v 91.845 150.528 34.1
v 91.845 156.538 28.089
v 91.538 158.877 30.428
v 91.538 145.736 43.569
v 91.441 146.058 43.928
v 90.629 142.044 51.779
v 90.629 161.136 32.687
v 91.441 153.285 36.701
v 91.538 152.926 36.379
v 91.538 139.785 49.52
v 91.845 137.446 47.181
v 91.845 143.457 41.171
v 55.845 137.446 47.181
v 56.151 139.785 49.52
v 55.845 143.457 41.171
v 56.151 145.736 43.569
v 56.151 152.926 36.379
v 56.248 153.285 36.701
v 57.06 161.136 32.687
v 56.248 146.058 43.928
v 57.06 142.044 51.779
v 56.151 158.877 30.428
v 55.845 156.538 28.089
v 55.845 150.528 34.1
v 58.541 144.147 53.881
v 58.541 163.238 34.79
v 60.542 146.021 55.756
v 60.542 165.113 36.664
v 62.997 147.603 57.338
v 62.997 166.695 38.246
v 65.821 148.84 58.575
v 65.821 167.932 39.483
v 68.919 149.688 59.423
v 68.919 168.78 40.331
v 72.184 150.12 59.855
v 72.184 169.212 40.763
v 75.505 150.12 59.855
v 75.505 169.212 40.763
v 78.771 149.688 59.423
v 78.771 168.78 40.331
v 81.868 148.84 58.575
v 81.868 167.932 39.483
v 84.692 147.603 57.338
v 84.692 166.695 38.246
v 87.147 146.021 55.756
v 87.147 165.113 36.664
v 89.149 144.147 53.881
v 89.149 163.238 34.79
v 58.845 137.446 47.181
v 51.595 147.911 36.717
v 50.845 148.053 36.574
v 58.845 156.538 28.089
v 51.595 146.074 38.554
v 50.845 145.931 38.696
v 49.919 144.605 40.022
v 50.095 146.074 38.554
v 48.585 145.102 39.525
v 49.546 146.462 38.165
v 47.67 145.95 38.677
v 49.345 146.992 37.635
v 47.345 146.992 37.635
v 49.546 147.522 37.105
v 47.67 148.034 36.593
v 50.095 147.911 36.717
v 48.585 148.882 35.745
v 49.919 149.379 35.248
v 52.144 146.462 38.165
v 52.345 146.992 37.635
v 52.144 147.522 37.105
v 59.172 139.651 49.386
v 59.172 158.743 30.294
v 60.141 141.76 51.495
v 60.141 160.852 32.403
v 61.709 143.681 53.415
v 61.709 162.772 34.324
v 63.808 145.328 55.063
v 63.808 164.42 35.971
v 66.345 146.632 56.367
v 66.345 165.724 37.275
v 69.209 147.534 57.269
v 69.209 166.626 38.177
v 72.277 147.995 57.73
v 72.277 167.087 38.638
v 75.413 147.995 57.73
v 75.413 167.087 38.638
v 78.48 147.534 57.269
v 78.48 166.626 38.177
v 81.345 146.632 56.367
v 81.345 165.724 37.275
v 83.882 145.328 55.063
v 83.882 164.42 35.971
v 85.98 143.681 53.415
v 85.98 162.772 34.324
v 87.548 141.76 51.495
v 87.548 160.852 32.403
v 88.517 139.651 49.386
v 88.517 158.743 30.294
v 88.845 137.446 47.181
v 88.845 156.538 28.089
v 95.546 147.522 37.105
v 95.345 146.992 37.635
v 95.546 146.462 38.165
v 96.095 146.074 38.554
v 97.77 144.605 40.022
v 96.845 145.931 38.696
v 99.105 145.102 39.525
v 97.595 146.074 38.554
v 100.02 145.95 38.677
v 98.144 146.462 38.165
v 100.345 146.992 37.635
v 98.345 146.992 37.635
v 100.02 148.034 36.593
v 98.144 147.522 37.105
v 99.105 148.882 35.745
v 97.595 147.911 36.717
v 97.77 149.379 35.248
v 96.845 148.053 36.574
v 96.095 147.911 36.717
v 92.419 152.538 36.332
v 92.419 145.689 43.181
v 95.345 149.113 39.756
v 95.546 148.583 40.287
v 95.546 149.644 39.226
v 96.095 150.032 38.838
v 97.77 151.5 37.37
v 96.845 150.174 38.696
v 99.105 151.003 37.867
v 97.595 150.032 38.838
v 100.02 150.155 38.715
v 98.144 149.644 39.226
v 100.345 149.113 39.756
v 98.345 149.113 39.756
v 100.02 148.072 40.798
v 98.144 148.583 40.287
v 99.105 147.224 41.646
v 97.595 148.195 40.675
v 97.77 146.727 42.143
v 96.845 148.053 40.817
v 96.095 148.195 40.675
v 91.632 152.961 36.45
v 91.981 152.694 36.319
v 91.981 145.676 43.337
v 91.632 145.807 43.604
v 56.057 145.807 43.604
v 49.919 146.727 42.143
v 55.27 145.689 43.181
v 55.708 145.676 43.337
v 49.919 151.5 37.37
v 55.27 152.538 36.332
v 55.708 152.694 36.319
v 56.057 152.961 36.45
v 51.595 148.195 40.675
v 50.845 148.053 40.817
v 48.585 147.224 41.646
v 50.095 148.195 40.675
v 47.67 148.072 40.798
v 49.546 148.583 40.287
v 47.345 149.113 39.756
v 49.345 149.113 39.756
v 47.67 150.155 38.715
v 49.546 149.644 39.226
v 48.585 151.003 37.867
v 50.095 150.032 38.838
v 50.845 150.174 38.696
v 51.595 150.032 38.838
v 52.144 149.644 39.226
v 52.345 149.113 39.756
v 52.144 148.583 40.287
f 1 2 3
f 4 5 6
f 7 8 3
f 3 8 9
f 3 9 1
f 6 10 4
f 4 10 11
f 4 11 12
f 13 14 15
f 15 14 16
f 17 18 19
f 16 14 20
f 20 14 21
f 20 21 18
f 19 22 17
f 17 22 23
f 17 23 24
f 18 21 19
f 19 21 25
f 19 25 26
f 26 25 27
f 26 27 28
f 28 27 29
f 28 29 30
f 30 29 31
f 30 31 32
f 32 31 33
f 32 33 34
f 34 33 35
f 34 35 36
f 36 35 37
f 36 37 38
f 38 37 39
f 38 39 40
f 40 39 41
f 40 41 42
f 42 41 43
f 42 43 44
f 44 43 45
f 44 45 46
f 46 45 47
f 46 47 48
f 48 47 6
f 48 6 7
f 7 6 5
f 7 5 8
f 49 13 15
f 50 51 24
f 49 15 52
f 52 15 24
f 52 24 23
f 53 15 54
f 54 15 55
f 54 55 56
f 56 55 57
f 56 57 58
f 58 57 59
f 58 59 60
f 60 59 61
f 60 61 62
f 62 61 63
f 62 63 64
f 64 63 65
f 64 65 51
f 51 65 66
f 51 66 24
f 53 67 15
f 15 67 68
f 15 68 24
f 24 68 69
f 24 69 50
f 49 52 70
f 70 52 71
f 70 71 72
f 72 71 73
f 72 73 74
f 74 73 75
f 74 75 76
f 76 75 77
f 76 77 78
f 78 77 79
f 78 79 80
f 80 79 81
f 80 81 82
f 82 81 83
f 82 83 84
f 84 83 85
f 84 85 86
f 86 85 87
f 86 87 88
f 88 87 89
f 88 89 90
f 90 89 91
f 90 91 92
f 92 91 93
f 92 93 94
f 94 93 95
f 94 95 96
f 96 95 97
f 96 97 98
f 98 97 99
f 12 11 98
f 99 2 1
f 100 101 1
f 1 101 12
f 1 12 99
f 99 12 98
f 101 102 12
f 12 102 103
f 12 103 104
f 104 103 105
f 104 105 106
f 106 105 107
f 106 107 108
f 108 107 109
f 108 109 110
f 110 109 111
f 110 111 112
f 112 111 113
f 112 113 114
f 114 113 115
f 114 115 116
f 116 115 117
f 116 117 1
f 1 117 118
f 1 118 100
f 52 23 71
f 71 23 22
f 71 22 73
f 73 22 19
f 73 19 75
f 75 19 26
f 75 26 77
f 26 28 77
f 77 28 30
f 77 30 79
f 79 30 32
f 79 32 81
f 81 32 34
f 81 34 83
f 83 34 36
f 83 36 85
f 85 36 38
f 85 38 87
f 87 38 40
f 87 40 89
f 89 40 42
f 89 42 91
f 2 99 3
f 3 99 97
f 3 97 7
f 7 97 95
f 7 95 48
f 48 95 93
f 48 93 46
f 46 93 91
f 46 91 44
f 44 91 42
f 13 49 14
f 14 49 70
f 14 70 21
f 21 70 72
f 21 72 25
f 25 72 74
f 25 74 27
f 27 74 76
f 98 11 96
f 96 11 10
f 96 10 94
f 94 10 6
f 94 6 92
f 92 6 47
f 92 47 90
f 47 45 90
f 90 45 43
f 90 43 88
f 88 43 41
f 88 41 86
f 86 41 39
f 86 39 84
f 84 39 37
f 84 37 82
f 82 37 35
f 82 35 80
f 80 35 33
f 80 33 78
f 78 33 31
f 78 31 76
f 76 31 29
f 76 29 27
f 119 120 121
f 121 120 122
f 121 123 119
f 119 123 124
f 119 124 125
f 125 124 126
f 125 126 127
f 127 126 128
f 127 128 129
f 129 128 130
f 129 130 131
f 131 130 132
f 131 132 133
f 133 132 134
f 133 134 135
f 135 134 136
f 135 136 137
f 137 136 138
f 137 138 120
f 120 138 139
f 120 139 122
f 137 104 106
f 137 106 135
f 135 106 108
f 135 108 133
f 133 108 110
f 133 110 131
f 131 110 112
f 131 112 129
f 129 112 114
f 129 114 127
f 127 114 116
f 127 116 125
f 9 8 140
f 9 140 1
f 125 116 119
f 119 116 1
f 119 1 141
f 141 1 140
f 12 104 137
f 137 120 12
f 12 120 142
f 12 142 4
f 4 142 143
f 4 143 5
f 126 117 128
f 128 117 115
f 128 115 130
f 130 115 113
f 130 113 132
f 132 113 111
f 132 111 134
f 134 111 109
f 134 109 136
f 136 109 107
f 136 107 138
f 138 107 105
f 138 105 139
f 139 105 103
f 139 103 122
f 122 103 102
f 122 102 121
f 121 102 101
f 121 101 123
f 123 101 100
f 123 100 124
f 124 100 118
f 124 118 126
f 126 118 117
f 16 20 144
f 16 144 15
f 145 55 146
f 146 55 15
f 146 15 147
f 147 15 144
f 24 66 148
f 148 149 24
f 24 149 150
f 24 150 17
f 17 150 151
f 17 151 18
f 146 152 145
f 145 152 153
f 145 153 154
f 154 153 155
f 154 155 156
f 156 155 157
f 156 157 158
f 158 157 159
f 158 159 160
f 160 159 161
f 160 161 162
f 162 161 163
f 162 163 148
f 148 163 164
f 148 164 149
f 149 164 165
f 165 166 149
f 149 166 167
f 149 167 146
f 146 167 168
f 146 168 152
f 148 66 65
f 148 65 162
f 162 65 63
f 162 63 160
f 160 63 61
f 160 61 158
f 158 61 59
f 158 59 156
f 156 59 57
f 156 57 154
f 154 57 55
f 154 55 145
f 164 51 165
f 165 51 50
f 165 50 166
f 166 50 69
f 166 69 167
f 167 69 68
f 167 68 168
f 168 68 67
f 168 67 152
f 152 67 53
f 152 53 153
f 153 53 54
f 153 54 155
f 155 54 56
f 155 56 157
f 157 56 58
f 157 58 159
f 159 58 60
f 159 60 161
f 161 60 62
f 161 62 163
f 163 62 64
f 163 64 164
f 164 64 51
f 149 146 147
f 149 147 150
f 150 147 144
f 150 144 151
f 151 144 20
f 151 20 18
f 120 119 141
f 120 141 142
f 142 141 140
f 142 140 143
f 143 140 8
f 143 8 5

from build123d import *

# Parameters (mm, degrees)
BOSS_EXTRUDE1_DEPTH = 27
SKETCH2_R           = 1.5
BOSS_EXTRUDE2_DEPTH = 3
FILLET1_R           = 1


with BuildPart() as part:
    # Sketch1 → Boss-Extrude1 (new body)
    with BuildSketch(Plane(origin=(0, 64.224437766, -64.224437766), x_dir=(1, 0, 0), z_dir=(0, 0.7071067811865498, -0.7071067811865452))):
        with BuildLine():
            Line((91.844609768, -130.551114539), (88.844609768, -130.551114539))
            ThreePointArc((88.844609768, -130.551114539), (73.844609768, -145.551114539), (58.844609768, -130.551114539))
            Line((58.844609768, -130.551114539), (55.844609768, -130.551114539))
            ThreePointArc((55.844609768, -130.551114539), (73.844609768, -148.551114539), (91.844609768, -130.551114539))
        make_face()
    extrude(amount=-BOSS_EXTRUDE1_DEPTH)

    # Sketch2 → Boss-Extrude2 (add)
    # profile 1 of 2: a face of its own
    with BuildSketch(Plane(origin=(0, 92.313578382, 92.313578382), x_dir=(1, 0, 0), z_dir=(-1.3084103822363938e-14, 0.7071067811865454, 0.7071067811865497))):
        with BuildLine():
            Line((97.77004577, 80.702506927), (88.844609768, 83.149574448))
            Line((88.844609768, 83.149574448), (88.844609768, 71.5045674))
            Line((88.844609768, 71.5045674), (97.77004577, 73.951634922))
            ThreePointArc((97.77004577, 73.951634922), (100.344609768, 77.327070924), (97.77004577, 80.702506927))
        make_face()
        with Locations(Location((96.844609768, 77.327070924, 0), (0, 0, 270))):
            Circle(SKETCH2_R, mode=Mode.SUBTRACT)
    # profile 2 of 2: a face of its own
    with BuildSketch(Plane(origin=(0, 92.313578382, 92.313578382), x_dir=(1, 0, 0), z_dir=(-1.3084103822363938e-14, 0.7071067811865454, 0.7071067811865497))):
        with BuildLine():
            Line((49.919173765, 73.951634922), (58.844609768, 71.5045674))
            Line((58.844609768, 71.5045674), (58.844609768, 83.149574448))
            Line((58.844609768, 83.149574448), (49.919173765, 80.702506927))
            ThreePointArc((49.919173765, 80.702506927), (47.344609768, 77.327070924), (49.919173765, 73.951634922))
        make_face()
        with Locations(Location((50.844609768, 77.327070924, 0), (0, 0, 270))):
            Circle(SKETCH2_R, mode=Mode.SUBTRACT)
    extrude(amount=BOSS_EXTRUDE2_DEPTH)

    # Fillet1
    fillet1_edges = [part.edges().sort_by_distance(p)[0] for p in [
        (91.592849117, 149.113394945, 39.756402505),
        (56.096370418, 149.113394945, 39.756402505),
    ]]
    fillet(fillet1_edges, radius=FILLET1_R)


solid = part.part
